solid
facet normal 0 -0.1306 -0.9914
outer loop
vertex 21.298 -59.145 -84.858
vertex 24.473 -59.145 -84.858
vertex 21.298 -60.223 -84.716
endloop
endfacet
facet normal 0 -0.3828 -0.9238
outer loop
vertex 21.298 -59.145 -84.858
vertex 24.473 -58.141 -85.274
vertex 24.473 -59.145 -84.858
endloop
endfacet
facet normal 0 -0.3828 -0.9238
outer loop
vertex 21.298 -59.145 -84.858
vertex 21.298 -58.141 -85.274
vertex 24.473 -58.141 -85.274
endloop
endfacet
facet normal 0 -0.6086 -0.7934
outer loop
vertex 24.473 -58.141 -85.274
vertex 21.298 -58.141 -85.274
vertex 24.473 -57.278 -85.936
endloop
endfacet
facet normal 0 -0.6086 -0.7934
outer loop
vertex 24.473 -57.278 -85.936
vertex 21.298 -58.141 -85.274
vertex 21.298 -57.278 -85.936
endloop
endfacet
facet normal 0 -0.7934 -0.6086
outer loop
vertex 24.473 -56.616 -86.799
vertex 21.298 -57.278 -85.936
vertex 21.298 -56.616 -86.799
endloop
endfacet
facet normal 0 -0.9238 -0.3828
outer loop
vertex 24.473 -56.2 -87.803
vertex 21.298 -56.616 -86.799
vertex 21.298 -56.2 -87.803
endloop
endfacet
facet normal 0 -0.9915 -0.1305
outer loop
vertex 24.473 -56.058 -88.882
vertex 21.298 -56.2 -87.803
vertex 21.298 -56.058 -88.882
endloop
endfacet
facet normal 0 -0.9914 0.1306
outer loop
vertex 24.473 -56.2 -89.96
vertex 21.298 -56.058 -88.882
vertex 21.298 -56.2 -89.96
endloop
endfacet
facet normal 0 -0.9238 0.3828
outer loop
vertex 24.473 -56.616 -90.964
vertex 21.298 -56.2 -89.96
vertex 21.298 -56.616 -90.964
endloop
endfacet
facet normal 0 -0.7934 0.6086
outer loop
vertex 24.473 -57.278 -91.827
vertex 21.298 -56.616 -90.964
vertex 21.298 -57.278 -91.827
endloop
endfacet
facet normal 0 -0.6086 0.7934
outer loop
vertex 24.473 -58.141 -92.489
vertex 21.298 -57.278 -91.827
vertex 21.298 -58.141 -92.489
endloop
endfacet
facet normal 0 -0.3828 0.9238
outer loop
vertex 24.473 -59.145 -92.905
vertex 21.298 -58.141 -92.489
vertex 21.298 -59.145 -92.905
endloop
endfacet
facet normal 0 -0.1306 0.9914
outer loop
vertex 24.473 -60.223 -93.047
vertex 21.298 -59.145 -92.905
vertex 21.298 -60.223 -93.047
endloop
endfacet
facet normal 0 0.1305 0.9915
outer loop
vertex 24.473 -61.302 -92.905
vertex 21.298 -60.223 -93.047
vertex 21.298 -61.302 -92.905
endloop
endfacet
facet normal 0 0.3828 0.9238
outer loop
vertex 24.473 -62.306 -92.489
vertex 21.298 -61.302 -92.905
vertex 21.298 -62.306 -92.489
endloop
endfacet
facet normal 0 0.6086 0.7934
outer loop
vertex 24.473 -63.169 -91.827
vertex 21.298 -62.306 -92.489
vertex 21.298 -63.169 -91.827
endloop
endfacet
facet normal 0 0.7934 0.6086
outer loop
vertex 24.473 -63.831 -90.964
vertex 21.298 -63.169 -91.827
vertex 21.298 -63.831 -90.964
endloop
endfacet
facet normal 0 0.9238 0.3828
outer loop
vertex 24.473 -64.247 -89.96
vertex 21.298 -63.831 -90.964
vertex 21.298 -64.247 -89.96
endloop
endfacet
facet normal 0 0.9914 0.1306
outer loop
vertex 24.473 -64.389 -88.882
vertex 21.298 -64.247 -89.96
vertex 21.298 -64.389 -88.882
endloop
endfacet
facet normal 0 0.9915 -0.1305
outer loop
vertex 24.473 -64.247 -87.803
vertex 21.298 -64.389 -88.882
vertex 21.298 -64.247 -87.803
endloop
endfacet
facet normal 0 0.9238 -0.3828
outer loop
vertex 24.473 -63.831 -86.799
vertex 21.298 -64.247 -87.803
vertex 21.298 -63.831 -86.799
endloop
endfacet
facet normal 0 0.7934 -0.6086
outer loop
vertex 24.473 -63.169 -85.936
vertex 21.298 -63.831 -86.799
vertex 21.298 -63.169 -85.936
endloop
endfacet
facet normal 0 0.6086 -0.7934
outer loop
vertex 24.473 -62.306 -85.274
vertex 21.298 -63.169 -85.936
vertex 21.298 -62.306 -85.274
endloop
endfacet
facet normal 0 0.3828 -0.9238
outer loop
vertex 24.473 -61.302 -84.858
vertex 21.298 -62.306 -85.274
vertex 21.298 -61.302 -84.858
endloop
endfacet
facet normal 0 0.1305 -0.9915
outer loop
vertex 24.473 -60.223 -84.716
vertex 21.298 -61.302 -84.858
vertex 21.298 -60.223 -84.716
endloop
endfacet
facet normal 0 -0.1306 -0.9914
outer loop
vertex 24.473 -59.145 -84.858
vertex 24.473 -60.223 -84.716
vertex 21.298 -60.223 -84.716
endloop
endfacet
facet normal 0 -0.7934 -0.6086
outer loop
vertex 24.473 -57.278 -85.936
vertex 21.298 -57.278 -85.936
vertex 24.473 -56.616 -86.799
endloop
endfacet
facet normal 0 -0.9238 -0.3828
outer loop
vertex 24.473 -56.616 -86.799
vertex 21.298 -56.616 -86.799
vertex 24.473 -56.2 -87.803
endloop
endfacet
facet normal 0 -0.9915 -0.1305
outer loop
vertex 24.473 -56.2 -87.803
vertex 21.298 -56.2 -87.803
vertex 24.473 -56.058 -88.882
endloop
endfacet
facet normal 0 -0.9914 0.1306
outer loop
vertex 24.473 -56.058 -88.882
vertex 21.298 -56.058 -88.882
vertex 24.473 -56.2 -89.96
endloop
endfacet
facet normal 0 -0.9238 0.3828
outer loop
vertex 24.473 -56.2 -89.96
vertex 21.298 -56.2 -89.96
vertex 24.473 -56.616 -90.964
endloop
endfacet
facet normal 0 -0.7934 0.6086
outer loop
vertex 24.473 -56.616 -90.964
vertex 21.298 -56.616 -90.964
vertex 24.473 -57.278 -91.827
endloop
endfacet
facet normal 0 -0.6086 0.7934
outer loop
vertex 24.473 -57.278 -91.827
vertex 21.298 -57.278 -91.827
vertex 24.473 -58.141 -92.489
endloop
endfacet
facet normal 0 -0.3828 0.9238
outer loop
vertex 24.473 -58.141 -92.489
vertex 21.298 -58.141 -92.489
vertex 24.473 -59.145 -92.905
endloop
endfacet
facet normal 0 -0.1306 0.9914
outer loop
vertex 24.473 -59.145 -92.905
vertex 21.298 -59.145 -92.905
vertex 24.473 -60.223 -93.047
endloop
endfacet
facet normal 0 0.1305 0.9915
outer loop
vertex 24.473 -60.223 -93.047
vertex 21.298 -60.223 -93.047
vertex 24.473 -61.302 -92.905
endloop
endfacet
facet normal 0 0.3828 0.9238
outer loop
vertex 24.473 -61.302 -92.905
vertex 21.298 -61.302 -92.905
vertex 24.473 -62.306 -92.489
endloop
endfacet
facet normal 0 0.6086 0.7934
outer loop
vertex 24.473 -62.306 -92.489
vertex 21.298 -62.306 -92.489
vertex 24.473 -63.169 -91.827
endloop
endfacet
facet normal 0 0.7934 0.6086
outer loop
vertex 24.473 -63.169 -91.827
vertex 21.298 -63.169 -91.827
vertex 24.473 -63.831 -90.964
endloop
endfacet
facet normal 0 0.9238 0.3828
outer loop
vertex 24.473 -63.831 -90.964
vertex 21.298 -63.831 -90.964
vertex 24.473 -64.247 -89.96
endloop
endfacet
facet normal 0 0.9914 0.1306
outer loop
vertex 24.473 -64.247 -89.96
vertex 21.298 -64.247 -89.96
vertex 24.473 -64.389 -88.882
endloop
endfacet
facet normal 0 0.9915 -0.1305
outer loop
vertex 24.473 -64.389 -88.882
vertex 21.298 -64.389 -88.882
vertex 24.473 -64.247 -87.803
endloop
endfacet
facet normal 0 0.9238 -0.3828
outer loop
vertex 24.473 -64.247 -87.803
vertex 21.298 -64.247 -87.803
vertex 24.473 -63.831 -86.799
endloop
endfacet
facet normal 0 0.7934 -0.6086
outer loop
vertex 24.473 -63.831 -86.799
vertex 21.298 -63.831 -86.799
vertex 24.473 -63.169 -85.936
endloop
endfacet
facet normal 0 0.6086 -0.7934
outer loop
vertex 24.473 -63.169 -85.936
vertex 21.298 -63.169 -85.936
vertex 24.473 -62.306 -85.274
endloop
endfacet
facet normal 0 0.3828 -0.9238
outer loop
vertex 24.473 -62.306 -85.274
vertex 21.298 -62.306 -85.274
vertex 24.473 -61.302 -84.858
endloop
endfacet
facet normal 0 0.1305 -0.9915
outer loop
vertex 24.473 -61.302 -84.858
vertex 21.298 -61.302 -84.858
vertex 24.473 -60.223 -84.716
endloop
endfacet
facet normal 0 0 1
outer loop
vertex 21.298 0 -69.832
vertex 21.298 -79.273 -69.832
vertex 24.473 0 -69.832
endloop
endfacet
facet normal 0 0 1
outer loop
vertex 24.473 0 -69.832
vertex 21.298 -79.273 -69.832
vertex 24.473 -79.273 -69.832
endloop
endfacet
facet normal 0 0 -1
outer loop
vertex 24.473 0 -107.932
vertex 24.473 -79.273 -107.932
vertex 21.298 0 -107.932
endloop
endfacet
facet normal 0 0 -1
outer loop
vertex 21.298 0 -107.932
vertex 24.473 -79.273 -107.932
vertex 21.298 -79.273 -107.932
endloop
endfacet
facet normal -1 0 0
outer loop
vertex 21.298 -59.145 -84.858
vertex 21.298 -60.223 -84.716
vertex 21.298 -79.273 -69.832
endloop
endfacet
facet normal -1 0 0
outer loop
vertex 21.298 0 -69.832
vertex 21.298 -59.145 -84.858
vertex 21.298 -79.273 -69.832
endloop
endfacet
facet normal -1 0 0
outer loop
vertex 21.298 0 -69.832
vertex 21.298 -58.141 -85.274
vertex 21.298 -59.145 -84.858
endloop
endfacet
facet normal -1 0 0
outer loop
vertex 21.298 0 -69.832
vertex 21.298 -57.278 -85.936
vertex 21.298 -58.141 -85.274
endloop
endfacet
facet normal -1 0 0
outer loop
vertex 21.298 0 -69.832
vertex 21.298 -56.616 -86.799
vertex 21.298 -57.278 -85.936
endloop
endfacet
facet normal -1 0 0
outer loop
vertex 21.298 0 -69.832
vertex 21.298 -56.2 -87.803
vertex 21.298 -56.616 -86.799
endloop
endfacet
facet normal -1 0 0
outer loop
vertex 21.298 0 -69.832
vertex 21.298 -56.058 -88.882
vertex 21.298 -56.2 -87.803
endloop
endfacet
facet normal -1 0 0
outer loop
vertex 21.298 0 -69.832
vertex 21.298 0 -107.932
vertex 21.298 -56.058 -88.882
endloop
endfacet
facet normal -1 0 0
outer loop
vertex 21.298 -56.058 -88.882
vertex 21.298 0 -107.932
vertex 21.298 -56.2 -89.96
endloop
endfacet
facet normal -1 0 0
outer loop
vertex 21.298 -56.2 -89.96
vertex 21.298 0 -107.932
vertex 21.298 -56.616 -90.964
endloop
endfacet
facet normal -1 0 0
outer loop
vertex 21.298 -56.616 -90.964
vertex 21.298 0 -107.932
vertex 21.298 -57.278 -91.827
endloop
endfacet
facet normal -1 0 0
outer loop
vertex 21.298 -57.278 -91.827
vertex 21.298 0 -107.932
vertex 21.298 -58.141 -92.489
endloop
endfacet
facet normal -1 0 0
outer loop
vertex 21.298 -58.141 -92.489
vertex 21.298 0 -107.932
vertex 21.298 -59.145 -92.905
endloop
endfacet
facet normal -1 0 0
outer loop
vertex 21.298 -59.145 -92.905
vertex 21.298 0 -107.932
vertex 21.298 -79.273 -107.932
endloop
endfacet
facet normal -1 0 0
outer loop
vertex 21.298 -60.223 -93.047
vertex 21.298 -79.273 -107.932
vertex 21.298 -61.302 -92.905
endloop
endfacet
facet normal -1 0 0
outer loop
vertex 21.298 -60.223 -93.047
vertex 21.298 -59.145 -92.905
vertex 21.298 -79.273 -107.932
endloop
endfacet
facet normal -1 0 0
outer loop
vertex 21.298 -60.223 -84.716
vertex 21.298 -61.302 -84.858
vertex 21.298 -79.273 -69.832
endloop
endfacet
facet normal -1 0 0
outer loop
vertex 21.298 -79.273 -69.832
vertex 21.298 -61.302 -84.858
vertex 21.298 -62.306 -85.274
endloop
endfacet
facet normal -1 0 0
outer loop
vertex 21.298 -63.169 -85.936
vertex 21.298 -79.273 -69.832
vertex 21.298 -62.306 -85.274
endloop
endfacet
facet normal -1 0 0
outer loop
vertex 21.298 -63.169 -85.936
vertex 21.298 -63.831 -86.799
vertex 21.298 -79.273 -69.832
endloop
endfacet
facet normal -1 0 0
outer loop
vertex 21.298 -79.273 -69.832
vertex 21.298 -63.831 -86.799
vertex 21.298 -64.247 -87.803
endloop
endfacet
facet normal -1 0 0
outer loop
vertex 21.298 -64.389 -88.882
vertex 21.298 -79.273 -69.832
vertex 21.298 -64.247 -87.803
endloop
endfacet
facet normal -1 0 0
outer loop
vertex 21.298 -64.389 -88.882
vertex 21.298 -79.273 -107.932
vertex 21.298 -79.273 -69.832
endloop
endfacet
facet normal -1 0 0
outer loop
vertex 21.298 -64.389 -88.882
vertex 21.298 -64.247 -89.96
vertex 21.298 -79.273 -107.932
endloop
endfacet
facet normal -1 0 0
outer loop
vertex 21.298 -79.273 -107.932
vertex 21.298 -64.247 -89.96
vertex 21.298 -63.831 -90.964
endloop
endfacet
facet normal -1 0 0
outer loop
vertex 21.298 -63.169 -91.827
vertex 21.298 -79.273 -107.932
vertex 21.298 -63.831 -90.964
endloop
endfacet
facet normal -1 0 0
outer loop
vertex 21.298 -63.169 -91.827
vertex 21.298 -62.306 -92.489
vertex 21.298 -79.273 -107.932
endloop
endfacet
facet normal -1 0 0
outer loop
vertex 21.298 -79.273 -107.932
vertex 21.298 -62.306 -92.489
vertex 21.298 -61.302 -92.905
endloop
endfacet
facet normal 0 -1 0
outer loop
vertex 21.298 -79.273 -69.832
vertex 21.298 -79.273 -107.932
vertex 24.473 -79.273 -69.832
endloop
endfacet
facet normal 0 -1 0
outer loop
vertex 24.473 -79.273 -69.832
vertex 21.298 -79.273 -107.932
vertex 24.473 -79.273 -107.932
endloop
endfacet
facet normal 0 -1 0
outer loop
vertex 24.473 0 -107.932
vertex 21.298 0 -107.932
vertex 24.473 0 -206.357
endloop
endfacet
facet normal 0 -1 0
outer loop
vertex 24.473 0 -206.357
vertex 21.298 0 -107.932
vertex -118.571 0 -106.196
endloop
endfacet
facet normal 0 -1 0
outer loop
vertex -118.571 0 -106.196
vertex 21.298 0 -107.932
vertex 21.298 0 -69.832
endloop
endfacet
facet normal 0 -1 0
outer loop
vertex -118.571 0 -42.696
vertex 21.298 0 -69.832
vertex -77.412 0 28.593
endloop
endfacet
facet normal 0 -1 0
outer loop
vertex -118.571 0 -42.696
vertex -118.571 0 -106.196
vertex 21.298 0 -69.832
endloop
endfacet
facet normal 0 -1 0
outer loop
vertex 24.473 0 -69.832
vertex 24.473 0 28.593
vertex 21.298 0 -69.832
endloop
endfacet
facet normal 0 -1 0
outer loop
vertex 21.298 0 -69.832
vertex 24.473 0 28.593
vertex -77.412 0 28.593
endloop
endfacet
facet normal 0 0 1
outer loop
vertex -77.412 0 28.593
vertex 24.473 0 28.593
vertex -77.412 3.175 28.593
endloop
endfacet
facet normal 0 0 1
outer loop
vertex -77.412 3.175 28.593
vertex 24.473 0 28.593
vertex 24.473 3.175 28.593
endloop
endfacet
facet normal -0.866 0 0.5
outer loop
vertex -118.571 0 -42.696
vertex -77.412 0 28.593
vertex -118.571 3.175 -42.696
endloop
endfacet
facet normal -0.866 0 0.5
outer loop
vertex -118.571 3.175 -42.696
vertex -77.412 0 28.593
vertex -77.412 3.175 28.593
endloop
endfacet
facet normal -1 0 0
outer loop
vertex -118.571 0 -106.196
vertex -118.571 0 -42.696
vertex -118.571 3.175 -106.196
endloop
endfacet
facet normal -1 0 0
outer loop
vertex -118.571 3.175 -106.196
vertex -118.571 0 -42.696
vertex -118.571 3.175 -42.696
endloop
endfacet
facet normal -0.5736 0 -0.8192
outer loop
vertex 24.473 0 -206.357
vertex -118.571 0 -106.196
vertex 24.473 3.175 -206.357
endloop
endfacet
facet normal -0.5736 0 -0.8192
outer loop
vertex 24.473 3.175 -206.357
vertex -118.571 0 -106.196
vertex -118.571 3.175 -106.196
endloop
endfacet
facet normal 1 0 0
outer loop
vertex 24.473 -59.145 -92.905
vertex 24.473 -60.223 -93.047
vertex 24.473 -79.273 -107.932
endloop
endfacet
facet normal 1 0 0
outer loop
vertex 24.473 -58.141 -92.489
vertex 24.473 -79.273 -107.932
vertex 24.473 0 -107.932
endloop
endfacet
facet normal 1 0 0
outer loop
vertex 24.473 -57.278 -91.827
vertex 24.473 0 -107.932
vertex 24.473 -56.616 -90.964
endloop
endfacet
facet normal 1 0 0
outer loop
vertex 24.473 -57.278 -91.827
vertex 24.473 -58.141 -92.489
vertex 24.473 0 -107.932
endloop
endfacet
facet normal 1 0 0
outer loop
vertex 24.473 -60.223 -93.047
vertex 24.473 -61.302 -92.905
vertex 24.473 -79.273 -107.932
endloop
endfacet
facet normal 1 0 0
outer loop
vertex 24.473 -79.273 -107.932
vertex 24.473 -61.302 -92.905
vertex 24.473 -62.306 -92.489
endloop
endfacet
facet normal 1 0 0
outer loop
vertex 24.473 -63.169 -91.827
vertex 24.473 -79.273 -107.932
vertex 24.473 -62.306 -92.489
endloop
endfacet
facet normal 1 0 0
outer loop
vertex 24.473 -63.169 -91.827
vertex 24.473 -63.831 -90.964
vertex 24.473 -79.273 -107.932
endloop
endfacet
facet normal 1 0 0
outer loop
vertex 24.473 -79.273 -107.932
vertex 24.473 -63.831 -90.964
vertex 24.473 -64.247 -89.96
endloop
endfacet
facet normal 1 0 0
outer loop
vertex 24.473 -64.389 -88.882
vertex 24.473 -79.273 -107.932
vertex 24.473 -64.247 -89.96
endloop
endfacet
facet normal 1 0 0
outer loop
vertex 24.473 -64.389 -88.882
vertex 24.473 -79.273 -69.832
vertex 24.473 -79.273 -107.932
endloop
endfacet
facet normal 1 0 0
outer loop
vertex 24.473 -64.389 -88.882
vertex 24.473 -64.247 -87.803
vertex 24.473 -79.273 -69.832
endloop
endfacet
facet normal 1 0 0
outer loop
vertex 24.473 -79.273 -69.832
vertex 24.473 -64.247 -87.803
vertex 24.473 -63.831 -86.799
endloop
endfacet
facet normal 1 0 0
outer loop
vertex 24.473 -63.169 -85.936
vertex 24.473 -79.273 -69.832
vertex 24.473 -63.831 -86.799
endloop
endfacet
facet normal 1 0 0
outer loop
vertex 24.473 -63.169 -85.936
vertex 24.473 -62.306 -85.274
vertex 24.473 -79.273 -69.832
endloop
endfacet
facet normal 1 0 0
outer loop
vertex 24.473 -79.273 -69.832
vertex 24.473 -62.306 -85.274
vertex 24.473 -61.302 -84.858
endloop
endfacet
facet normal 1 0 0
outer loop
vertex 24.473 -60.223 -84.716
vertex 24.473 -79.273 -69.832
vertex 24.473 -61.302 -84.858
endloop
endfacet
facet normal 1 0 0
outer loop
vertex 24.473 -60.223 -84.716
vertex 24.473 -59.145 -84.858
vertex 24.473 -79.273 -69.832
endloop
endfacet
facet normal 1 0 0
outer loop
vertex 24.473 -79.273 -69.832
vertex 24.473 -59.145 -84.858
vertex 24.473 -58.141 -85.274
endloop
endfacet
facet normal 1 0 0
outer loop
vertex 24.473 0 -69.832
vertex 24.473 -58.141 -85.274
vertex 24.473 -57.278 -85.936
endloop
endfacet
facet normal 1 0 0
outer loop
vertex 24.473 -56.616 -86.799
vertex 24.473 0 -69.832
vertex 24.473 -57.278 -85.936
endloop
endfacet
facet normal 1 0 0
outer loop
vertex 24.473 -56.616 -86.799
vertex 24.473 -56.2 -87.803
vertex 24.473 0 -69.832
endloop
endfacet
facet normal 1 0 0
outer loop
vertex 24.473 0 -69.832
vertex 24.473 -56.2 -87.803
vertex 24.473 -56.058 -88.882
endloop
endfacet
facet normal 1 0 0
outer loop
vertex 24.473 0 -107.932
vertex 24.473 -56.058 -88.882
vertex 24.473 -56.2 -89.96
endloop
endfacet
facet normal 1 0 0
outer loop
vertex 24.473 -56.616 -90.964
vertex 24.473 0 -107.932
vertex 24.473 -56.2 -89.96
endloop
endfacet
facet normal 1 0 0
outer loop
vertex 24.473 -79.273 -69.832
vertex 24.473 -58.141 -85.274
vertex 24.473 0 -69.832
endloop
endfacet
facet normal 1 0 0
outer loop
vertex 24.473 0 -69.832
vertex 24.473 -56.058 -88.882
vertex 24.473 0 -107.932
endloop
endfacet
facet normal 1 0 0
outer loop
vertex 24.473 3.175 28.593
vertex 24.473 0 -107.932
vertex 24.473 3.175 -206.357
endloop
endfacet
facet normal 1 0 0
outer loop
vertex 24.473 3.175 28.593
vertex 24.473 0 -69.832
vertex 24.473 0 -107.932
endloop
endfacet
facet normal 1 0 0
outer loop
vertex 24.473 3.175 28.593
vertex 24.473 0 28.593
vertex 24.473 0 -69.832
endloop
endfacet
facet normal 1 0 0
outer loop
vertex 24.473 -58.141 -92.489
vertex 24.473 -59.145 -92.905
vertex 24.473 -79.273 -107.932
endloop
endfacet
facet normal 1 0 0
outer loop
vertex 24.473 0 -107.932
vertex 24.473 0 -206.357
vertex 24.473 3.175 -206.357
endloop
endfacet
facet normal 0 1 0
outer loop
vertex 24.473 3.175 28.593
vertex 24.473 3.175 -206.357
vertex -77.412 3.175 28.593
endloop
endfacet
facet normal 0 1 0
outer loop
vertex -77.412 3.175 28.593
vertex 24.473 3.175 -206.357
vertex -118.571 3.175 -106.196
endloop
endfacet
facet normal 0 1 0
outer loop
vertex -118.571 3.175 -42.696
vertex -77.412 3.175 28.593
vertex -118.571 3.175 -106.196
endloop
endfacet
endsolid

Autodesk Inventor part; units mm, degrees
ref_plane "YZ Plane" through (0, 0, 0) normal (1, 0, 0) x (0, 1, 0)
ref_plane "XZ Plane" through (0, 0, 0) normal (0, 1, 0) x (-1, 0, 0)
ref_plane "XY Plane" through (0, 0, 0) normal (0, 0, 1) x (1, 0, 0)
sketch "Sketch1" plane through (0, 0, 0) normal (0, 1, 0) x (-1, 0, 0)
  line L0 (-24.4733, 28.5935) -> (-24.4733, -206.3565)
  line L1 (-24.4733, -206.3565) -> (118.5711, -106.1957)
  line L2 (-24.4733, -206.3565) -> (150.1517, -206.3565) construction
  line L3 (118.5711, -106.1957) -> (118.5711, -42.6957)
  line L4 (118.5711, -42.6957) -> (77.4122, 28.5935)
  line L5 (-24.4733, 28.5935) -> (77.4122, 28.5935)
  point P0 (0, 0)
  dimension "d0" = 234.95
  dimension "d1" = 174.625
  dimension "d2" = 35
  dimension "d3" = 63.5
  dimension "d4" = 150
extrude "Extrusion1" add sketch "Sketch1" along normal blind 3.175
sketch "Sketch2" plane through (0, 0, 0) normal (0, -1, 0) x (1, 0, 0)
  line L0 (24.4733, 28.5935) -> (24.4733, -206.3565) projected
  line L1 (24.4733, 28.5935) -> (24.4733, -206.3565)
  line L2 (21.2983, -88.8815) -> (21.2983, -69.8315)
  line L3 (21.2983, -88.8815) -> (21.2983, -107.9315)
  line L4 (21.2983, -107.9315) -> (24.4733, -107.9315)
  line L5 (21.2983, -69.8315) -> (24.4733, -69.8315)
  point P0 (0, 0)
  dimension "d8" = 19.05
  dimension "d9" = 19.05
extrude "Extrusion2" add sketch "Sketch2" along normal blind 79.2734
sketch "Sketch3" plane through (24.4733, 3.175, 28.5935) normal (1, 0, 0) x (0, 0, -1)
  line L0 (98.425, -82.4484) -> (117.475, -82.4484)
  line L1 (117.475, -82.4484) -> (117.475, -63.3984)
  line L2 (117.475, -63.3984) -> (98.425, -63.3984)
  line L3 (98.425, -63.3984) -> (98.425, -82.4484)
  point P0 (28.5935, -3.175)
  dimension "d12" = 19.05
  dimension "d13" = 19.05
hole "Hole1" at (24.4733, -60.2234, -88.8815) direction (-1, 0, 0) diameter 8.3312 end through all
properties part number "Left Chest"
